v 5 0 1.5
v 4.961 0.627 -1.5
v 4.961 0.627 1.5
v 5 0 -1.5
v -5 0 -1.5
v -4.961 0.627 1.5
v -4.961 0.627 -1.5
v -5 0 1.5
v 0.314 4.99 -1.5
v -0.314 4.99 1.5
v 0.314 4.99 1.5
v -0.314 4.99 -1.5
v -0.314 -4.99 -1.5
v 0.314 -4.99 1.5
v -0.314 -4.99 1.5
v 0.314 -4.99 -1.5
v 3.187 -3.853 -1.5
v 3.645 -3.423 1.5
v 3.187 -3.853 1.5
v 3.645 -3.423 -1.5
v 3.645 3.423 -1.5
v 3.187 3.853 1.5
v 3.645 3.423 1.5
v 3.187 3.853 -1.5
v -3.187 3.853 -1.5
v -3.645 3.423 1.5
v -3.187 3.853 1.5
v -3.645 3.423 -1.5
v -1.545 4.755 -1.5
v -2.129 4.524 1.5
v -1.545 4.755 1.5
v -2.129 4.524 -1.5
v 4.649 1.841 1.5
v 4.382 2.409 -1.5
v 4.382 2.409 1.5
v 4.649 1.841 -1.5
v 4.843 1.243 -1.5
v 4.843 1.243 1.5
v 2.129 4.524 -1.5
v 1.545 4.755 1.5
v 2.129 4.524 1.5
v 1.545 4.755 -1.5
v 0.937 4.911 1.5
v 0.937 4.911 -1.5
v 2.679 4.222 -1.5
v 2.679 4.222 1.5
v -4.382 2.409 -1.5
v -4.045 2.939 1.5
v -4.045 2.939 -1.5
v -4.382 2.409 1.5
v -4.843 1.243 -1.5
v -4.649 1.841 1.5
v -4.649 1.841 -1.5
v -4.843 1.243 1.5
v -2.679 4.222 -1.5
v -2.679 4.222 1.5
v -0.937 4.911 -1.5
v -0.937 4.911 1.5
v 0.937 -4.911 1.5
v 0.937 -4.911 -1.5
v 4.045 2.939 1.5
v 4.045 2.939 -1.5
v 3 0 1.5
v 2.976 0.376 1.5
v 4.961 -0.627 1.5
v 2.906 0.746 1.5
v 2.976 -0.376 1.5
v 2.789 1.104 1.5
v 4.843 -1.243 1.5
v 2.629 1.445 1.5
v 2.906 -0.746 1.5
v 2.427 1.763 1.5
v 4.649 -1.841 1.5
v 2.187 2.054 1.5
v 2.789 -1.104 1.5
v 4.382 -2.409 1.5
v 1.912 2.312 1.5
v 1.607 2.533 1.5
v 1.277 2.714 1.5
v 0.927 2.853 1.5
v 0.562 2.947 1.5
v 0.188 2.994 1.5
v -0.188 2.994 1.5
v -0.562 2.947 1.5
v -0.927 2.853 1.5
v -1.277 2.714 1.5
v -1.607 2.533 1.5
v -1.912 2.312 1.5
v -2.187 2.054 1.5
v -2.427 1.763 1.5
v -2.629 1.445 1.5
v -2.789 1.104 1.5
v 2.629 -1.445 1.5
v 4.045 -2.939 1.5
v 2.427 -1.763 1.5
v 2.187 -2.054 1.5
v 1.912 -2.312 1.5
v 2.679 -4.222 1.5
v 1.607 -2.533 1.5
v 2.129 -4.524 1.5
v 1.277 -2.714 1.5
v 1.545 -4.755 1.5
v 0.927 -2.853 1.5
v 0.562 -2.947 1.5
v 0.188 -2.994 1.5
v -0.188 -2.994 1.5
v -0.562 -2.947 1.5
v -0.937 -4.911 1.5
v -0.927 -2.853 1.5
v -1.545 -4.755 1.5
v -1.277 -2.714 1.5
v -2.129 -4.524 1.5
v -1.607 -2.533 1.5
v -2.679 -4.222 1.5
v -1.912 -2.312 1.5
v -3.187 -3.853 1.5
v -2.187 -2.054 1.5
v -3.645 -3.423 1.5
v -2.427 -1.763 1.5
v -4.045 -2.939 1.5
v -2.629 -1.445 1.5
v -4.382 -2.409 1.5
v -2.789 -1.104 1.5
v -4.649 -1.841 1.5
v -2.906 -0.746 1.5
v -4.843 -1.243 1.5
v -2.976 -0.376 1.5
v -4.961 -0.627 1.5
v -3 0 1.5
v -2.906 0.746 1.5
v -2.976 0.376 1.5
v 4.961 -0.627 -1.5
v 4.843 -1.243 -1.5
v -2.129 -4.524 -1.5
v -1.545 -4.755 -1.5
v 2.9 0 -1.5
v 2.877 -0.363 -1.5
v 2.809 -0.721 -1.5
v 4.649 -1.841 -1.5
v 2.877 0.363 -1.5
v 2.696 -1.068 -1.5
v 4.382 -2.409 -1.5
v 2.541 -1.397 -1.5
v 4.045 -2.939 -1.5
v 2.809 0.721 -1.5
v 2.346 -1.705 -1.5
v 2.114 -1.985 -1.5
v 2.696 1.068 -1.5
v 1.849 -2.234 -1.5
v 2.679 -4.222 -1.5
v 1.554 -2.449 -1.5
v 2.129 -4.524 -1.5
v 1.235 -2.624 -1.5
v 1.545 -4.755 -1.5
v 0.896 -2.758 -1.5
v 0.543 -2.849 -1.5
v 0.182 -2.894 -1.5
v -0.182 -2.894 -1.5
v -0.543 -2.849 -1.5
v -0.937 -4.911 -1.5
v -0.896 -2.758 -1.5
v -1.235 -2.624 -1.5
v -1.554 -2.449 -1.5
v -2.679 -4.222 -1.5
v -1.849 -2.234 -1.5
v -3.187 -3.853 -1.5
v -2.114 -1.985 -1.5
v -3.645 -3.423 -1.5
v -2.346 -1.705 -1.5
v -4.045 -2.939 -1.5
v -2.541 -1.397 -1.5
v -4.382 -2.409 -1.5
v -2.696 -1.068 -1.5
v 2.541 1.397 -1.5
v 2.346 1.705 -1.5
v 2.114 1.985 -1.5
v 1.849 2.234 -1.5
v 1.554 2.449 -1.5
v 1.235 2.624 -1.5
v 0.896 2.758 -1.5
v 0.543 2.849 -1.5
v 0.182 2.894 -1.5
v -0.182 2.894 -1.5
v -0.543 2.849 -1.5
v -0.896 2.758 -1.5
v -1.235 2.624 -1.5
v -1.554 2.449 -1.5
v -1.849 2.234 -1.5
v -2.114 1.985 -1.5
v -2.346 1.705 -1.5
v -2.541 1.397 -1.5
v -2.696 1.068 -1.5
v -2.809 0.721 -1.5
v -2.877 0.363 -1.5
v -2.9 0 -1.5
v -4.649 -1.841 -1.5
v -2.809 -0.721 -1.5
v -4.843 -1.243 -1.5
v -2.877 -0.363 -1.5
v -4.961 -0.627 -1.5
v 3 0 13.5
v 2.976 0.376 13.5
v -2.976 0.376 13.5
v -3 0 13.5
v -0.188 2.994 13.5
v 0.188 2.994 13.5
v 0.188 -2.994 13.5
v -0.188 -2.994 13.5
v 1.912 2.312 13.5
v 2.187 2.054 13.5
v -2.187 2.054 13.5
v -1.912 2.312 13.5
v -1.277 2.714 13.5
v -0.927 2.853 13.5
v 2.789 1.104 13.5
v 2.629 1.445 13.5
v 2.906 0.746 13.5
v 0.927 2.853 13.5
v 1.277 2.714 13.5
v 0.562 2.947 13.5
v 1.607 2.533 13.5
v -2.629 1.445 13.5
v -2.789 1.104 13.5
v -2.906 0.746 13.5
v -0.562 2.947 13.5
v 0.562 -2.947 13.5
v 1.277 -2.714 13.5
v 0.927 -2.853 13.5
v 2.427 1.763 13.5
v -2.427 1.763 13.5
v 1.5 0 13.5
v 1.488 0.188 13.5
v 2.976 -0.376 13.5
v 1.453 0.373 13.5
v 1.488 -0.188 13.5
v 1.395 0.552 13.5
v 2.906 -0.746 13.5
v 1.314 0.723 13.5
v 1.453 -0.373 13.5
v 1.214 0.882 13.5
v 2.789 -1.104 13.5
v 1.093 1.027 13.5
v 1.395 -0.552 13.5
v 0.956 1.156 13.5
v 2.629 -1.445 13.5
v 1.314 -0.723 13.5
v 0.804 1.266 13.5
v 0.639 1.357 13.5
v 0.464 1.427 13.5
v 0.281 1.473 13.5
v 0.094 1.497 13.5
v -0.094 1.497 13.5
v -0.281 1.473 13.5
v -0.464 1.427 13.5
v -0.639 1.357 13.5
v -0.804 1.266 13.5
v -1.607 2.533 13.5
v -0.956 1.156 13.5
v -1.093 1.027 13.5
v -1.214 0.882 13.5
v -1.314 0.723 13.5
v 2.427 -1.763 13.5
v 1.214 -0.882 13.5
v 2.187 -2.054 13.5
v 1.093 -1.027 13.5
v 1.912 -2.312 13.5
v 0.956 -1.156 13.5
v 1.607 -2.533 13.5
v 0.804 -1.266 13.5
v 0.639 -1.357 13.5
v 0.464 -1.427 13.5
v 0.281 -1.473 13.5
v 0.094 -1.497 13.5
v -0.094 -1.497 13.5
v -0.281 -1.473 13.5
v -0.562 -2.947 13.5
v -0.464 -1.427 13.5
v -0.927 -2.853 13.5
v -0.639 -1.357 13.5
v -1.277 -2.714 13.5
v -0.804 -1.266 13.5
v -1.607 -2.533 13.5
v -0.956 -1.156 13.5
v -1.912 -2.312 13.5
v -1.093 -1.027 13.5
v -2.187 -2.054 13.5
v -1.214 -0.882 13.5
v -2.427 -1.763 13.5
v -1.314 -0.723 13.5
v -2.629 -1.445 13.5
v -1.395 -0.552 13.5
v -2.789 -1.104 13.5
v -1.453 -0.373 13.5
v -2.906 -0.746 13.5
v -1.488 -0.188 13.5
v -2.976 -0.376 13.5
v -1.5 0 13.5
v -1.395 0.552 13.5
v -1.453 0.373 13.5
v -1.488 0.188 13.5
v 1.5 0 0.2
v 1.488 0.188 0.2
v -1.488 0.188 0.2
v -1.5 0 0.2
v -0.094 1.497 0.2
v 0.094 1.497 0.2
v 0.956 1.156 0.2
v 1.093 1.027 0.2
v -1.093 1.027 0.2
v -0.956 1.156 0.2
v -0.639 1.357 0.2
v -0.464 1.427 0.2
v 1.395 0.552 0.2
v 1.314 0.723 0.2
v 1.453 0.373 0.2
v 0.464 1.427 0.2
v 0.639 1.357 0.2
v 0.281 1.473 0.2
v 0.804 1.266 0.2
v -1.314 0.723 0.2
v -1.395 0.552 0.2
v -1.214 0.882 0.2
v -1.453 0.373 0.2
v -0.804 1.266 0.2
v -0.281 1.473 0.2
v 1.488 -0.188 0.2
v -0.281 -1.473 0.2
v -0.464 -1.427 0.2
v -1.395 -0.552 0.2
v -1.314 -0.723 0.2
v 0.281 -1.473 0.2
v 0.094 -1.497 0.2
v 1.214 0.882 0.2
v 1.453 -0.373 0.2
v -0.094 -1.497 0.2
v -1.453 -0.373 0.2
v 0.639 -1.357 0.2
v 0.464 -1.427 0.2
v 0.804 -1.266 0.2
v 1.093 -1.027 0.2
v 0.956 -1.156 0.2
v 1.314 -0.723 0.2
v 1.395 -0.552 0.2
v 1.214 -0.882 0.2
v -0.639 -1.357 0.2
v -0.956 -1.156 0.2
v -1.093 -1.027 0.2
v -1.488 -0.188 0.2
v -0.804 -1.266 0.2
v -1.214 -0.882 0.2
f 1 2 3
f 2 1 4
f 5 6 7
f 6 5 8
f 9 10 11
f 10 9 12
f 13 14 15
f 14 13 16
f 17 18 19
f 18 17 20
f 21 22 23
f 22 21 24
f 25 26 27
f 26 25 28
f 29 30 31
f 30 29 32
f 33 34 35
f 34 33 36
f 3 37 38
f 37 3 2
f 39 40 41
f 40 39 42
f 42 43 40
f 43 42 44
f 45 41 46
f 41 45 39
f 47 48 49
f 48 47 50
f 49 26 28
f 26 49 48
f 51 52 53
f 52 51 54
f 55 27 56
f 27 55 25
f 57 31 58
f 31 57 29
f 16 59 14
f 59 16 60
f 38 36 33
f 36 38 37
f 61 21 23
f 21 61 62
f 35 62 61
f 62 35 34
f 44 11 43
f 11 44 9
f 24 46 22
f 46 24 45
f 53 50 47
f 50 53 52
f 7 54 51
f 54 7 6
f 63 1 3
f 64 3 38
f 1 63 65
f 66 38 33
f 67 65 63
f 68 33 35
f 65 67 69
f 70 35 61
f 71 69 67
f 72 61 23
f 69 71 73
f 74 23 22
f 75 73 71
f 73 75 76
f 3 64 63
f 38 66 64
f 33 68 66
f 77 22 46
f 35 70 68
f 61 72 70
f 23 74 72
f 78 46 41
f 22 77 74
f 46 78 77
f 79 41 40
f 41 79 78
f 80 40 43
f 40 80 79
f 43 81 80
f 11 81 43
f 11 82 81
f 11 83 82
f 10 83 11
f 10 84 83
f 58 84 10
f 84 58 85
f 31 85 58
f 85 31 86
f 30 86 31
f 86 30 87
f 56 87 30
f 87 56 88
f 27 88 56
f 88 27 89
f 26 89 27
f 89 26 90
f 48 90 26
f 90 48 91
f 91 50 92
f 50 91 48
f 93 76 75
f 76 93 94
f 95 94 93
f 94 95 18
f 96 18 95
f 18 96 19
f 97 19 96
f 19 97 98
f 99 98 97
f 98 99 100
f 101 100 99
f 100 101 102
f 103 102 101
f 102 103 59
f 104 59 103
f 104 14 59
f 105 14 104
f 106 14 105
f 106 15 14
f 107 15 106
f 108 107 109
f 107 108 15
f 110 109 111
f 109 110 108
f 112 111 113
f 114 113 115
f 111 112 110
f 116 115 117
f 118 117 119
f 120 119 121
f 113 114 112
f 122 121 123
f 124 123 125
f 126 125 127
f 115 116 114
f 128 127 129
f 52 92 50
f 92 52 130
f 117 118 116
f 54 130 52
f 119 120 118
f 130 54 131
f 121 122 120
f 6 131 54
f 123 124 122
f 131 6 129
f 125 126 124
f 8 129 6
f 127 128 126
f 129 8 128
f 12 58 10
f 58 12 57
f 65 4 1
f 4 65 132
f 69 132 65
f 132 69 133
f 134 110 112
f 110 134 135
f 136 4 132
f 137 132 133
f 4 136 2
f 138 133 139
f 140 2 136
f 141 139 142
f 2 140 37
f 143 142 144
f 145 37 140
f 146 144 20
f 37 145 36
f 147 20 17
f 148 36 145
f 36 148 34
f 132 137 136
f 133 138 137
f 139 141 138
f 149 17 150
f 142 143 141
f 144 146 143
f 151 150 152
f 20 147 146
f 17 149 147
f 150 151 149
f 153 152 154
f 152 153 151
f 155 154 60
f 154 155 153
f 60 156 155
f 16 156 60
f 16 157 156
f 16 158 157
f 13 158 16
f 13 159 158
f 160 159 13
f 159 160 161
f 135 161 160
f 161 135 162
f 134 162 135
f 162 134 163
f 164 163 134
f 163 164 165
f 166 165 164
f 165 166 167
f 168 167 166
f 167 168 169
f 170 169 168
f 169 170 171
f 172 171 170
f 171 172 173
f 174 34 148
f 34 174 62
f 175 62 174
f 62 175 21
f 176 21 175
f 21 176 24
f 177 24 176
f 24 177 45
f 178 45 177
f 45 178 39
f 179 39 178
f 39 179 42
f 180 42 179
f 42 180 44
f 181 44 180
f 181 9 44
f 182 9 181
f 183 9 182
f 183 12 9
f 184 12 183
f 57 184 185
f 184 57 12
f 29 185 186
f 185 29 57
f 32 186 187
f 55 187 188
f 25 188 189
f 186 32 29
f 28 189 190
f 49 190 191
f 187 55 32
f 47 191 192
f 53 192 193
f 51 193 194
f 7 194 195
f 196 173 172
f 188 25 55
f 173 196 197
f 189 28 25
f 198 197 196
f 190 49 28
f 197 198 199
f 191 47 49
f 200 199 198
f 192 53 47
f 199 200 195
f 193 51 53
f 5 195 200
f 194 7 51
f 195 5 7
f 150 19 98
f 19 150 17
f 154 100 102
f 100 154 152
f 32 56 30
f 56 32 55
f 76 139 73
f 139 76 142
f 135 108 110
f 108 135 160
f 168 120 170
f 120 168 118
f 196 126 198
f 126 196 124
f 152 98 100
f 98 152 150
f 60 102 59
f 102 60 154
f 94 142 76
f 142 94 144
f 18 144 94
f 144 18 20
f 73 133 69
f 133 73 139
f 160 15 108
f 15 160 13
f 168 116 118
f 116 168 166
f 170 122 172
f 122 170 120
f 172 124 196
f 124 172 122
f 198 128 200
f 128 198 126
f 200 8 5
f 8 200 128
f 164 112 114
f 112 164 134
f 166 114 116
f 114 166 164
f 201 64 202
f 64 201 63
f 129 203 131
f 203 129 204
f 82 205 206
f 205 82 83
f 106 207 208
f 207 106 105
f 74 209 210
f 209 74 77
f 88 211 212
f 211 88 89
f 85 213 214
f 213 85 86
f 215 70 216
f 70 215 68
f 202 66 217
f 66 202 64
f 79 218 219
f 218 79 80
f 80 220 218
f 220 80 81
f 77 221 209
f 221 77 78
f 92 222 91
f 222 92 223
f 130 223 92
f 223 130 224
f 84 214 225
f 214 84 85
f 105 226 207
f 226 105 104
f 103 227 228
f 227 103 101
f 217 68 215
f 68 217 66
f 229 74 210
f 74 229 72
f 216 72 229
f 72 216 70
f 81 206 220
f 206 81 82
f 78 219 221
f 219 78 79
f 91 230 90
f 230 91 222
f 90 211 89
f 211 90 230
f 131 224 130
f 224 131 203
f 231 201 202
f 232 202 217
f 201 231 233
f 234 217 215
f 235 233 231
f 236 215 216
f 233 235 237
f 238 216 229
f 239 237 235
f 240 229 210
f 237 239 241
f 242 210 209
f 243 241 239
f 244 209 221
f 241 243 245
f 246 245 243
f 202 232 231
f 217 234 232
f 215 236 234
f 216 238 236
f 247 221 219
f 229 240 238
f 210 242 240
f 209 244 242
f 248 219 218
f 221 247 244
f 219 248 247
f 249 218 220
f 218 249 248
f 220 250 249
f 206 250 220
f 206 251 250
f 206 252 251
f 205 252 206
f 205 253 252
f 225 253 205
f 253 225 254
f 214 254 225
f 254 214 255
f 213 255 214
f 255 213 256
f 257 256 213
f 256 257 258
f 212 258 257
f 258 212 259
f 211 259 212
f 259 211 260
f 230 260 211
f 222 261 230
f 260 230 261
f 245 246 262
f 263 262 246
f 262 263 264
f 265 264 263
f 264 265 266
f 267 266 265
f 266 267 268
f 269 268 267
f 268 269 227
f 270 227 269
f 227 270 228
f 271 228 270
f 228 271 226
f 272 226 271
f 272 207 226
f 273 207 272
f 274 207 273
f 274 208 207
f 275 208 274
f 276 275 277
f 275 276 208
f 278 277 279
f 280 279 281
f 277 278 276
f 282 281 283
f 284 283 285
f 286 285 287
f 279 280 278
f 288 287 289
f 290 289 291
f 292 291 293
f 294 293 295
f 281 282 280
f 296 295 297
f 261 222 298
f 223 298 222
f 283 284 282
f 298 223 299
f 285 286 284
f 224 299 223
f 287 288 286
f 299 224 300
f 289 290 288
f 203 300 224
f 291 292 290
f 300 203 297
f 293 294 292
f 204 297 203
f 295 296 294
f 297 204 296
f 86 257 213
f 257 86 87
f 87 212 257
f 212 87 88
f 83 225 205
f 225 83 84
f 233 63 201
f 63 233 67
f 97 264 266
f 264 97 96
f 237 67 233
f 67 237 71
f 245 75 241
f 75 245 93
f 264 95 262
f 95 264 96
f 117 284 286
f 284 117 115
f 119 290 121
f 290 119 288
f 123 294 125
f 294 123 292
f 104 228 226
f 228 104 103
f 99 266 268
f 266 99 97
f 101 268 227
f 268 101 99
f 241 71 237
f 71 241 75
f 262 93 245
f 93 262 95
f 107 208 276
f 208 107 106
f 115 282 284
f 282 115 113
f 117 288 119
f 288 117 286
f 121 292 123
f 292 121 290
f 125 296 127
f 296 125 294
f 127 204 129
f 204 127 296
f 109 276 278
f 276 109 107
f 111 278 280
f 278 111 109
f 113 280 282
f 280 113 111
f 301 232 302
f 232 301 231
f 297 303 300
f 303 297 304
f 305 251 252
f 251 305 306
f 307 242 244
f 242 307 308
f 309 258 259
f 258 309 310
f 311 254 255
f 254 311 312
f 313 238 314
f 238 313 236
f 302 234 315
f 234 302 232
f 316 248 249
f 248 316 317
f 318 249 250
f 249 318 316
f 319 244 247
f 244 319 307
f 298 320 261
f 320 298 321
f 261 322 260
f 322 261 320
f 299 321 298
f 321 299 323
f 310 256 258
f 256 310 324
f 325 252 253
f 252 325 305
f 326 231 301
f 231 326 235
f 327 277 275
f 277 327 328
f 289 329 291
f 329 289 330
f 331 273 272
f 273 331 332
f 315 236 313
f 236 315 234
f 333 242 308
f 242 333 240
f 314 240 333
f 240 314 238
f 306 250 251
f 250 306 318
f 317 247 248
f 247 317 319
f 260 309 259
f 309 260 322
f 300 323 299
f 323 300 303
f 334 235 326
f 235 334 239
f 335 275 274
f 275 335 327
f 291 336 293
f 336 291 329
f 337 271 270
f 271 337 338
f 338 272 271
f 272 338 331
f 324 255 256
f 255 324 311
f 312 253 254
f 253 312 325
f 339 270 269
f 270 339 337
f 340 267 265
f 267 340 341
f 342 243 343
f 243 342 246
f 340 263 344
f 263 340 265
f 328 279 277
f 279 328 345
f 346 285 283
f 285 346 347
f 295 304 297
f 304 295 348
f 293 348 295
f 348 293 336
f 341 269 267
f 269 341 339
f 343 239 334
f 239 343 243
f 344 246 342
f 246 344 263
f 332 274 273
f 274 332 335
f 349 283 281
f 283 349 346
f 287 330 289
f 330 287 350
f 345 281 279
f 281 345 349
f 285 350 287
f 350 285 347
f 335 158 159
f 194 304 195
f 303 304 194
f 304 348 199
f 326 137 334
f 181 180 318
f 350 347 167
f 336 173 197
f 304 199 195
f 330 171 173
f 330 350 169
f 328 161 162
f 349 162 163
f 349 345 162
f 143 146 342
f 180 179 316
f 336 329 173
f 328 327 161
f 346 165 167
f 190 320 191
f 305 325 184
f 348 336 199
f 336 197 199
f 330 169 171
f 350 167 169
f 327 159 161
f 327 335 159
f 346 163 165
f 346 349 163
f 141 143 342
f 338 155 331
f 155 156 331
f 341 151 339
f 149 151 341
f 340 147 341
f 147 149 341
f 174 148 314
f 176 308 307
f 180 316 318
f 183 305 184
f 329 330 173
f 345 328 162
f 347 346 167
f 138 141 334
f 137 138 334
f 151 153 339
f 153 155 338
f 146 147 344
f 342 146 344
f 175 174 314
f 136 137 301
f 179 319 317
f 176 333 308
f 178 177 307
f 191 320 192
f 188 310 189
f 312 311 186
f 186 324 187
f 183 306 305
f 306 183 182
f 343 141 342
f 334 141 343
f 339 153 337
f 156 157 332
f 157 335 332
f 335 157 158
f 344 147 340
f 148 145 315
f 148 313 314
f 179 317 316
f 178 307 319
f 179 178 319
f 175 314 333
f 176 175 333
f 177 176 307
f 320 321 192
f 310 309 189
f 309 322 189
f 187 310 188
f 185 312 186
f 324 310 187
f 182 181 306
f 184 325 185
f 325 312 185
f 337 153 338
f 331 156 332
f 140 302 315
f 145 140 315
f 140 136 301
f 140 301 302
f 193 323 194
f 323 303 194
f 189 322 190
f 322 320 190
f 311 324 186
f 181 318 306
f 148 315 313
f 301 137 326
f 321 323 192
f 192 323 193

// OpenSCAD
$fn = 50;


difference() {
	union() {
		translate(v = [0, 0, -1.5000000000]) {
			rotate(a = [0, 0, 0]) {
				cylinder(h = 3, r = 5.0000000000);
			}
		}
		translate(v = [0, 0, -1.5000000000]) {
			rotate(a = [0, 0, 0]) {
				cylinder(h = 15, r = 3.0000000000);
			}
		}
	}
	union() {
		translate(v = [0, 0, -125.0000000000]) {
			rotate(a = [0, 0, 0]) {
				cylinder(h = 250, r = 1.5000000000);
			}
		}
		#translate(v = [0, 0, 0.2000000000]) {
			rotate(a = [0, 180, 0]) {
				cylinder(h = 1.7000000000, r1 = 1.5000000000, r2 = 2.9000000000);
			}
		}
		#translate(v = [0, 0, 13.5000000000]) {
			rotate(a = [0, 180, 0]) {
				cylinder(h = 15, r = 1.5000000000);
			}
		}
	}
}
